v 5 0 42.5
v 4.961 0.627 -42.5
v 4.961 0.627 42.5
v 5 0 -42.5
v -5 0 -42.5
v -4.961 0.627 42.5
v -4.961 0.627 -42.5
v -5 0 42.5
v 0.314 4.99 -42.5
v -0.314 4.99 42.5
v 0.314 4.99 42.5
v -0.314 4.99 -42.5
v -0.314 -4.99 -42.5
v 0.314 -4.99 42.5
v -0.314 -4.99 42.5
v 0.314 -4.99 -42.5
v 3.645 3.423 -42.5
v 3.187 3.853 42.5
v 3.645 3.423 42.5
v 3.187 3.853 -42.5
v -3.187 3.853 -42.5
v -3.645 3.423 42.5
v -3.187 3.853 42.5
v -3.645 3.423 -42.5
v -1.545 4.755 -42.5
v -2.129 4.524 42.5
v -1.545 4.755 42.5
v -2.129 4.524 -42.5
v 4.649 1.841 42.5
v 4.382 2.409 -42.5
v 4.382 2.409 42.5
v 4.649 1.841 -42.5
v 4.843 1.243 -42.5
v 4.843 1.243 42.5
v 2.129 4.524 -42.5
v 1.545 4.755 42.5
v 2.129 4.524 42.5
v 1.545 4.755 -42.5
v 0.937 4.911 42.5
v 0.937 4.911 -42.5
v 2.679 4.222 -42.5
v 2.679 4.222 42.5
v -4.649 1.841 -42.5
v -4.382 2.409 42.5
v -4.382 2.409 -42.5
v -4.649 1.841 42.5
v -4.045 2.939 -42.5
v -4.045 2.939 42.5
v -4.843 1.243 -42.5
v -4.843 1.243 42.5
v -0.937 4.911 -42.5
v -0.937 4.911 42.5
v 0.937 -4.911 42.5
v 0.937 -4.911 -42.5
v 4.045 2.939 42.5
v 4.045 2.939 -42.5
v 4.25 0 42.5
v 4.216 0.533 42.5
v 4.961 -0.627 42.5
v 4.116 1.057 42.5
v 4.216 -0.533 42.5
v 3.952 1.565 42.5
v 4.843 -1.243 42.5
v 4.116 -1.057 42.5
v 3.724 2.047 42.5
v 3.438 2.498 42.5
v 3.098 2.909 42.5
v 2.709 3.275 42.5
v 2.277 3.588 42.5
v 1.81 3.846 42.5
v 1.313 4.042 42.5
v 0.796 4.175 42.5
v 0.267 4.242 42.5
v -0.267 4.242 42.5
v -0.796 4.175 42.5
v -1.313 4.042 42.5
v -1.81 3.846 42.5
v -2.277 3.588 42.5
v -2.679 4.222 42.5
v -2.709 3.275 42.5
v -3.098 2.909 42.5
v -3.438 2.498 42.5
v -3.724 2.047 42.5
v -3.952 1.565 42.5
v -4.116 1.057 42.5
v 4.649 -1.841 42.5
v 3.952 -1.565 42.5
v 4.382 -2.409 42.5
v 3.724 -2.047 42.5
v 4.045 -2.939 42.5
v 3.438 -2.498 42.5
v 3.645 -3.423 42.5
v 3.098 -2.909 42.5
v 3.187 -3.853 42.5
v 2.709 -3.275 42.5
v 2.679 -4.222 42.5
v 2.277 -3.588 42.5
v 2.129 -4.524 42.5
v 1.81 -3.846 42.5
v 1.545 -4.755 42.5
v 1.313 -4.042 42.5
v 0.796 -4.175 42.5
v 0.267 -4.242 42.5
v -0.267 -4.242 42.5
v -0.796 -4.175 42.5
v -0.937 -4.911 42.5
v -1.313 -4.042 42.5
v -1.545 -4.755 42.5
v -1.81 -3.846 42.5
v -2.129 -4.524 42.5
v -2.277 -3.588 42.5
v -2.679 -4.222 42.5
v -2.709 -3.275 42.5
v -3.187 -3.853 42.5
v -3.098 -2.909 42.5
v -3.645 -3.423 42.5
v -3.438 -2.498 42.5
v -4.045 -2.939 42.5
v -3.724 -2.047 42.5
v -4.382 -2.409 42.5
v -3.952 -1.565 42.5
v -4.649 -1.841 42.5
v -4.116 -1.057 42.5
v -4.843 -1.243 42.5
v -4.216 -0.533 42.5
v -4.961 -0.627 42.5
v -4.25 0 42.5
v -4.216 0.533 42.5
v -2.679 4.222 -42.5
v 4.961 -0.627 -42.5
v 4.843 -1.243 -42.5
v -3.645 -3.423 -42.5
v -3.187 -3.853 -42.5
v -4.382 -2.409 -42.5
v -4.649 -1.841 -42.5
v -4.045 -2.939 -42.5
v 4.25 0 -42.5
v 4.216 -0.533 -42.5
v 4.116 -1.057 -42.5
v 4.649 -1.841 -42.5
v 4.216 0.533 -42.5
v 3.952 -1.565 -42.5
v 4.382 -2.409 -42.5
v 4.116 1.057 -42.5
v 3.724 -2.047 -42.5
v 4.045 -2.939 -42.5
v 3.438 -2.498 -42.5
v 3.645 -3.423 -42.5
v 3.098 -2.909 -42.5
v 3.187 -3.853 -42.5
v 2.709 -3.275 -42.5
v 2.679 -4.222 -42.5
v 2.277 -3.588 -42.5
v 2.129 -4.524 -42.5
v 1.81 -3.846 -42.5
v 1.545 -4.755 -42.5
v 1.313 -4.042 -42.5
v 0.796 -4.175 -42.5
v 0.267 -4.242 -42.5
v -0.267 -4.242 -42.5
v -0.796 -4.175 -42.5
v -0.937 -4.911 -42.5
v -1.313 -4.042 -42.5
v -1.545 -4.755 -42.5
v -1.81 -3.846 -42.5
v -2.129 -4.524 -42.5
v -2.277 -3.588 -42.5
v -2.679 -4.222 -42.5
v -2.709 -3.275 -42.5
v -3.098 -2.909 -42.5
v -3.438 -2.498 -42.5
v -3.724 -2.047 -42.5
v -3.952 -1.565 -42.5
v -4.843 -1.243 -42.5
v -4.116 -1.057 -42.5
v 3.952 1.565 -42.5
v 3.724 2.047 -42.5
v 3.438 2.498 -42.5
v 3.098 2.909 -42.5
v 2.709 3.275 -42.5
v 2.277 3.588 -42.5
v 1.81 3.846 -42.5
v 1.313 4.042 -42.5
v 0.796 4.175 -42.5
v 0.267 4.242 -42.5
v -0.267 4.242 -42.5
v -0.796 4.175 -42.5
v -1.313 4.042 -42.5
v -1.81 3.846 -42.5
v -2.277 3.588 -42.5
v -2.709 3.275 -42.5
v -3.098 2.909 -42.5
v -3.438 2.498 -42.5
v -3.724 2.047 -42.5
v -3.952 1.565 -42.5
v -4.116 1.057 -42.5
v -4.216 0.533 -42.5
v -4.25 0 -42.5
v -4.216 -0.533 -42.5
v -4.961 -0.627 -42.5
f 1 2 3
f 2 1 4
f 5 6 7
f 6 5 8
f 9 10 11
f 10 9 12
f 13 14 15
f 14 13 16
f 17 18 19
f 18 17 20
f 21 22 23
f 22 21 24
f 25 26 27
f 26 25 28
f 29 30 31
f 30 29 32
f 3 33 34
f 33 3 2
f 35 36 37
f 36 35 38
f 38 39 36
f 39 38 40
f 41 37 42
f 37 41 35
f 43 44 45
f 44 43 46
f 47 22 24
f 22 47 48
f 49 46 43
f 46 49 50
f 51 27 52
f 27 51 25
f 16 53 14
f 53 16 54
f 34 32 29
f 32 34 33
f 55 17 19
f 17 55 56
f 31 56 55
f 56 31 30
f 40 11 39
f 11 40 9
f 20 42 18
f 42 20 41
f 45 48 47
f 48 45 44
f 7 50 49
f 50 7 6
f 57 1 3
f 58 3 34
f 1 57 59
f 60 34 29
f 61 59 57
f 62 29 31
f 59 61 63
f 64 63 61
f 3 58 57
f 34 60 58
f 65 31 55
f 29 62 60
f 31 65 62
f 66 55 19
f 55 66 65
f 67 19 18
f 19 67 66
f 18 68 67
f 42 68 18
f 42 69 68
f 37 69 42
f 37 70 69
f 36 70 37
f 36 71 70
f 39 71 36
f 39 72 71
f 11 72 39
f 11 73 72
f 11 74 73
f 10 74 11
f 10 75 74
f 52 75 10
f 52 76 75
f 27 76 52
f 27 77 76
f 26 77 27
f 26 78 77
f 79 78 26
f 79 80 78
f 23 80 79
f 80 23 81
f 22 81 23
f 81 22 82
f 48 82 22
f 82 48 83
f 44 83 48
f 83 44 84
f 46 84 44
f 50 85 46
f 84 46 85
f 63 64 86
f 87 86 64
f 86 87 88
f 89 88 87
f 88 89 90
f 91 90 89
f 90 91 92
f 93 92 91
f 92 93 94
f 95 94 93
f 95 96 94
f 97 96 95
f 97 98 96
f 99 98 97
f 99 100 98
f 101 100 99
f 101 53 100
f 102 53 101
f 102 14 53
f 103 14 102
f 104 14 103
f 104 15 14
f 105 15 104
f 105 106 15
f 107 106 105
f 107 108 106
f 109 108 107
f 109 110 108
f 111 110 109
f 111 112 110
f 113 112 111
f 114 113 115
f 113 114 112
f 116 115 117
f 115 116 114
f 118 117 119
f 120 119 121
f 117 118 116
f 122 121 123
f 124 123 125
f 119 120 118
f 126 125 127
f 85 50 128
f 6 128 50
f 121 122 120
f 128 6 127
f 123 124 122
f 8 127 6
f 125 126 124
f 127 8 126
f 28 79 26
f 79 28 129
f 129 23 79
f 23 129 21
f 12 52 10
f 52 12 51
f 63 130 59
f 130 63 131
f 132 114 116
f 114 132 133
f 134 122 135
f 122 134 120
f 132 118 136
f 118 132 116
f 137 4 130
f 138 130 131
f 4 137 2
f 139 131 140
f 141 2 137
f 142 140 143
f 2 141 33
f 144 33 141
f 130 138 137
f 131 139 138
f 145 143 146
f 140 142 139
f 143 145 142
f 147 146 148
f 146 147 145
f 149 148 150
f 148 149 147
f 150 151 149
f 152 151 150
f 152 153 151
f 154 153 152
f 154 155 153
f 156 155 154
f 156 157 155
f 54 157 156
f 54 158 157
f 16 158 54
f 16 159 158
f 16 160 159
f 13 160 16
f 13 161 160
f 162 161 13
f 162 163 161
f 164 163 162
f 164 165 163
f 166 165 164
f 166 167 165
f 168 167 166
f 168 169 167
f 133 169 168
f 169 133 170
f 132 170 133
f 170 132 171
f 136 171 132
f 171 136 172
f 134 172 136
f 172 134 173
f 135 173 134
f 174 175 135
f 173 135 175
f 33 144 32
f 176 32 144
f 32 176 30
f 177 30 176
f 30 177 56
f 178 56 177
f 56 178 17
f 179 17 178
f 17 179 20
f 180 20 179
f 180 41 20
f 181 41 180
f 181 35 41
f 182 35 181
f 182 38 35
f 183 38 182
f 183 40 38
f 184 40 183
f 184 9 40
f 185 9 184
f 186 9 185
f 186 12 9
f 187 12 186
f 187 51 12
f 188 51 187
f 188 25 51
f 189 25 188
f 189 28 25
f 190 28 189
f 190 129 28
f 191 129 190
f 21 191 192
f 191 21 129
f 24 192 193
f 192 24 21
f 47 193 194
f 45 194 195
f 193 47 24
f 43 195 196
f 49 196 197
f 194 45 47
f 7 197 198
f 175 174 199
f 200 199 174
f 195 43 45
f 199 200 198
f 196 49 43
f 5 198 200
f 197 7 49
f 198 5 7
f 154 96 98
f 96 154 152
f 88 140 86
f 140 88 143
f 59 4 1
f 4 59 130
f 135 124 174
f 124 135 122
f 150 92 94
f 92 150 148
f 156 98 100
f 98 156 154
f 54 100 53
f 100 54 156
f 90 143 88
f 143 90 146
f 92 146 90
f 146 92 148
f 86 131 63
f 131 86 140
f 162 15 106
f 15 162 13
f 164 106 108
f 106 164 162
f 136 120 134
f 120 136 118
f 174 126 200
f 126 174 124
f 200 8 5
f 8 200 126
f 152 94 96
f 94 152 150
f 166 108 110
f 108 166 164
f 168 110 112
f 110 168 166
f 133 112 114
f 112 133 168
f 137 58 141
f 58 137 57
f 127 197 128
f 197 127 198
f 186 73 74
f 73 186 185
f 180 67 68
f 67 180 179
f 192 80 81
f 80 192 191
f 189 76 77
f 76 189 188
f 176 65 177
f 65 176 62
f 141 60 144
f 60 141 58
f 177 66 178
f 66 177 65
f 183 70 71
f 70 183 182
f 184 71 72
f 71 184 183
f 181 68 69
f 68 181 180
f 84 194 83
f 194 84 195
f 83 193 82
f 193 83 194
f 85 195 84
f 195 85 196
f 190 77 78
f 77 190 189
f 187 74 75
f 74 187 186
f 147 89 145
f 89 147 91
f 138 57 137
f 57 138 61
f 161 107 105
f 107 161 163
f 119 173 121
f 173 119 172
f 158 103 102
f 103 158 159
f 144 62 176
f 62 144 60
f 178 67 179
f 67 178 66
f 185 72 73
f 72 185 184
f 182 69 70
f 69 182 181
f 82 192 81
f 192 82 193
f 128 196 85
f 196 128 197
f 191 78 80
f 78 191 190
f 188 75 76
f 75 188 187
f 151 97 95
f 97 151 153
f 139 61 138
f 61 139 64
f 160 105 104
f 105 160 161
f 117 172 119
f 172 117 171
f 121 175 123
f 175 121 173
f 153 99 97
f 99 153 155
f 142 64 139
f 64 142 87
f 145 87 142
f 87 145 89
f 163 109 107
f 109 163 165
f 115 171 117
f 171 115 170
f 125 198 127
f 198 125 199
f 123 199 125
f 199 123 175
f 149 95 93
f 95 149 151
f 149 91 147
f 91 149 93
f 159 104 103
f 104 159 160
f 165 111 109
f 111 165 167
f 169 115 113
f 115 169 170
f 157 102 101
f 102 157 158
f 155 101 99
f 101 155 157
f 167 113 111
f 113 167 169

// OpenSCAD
$fn = 50;


difference() {
	union() {
		translate(v = [0, 0, -42.5000000000]) {
			cylinder(h = 85, r = 5.0000000000);
		}
	}
	union() {
		translate(v = [0, 0, -100.0000000000]) {
			cylinder(h = 200, r = 4.2500000000);
		}
	}
}
